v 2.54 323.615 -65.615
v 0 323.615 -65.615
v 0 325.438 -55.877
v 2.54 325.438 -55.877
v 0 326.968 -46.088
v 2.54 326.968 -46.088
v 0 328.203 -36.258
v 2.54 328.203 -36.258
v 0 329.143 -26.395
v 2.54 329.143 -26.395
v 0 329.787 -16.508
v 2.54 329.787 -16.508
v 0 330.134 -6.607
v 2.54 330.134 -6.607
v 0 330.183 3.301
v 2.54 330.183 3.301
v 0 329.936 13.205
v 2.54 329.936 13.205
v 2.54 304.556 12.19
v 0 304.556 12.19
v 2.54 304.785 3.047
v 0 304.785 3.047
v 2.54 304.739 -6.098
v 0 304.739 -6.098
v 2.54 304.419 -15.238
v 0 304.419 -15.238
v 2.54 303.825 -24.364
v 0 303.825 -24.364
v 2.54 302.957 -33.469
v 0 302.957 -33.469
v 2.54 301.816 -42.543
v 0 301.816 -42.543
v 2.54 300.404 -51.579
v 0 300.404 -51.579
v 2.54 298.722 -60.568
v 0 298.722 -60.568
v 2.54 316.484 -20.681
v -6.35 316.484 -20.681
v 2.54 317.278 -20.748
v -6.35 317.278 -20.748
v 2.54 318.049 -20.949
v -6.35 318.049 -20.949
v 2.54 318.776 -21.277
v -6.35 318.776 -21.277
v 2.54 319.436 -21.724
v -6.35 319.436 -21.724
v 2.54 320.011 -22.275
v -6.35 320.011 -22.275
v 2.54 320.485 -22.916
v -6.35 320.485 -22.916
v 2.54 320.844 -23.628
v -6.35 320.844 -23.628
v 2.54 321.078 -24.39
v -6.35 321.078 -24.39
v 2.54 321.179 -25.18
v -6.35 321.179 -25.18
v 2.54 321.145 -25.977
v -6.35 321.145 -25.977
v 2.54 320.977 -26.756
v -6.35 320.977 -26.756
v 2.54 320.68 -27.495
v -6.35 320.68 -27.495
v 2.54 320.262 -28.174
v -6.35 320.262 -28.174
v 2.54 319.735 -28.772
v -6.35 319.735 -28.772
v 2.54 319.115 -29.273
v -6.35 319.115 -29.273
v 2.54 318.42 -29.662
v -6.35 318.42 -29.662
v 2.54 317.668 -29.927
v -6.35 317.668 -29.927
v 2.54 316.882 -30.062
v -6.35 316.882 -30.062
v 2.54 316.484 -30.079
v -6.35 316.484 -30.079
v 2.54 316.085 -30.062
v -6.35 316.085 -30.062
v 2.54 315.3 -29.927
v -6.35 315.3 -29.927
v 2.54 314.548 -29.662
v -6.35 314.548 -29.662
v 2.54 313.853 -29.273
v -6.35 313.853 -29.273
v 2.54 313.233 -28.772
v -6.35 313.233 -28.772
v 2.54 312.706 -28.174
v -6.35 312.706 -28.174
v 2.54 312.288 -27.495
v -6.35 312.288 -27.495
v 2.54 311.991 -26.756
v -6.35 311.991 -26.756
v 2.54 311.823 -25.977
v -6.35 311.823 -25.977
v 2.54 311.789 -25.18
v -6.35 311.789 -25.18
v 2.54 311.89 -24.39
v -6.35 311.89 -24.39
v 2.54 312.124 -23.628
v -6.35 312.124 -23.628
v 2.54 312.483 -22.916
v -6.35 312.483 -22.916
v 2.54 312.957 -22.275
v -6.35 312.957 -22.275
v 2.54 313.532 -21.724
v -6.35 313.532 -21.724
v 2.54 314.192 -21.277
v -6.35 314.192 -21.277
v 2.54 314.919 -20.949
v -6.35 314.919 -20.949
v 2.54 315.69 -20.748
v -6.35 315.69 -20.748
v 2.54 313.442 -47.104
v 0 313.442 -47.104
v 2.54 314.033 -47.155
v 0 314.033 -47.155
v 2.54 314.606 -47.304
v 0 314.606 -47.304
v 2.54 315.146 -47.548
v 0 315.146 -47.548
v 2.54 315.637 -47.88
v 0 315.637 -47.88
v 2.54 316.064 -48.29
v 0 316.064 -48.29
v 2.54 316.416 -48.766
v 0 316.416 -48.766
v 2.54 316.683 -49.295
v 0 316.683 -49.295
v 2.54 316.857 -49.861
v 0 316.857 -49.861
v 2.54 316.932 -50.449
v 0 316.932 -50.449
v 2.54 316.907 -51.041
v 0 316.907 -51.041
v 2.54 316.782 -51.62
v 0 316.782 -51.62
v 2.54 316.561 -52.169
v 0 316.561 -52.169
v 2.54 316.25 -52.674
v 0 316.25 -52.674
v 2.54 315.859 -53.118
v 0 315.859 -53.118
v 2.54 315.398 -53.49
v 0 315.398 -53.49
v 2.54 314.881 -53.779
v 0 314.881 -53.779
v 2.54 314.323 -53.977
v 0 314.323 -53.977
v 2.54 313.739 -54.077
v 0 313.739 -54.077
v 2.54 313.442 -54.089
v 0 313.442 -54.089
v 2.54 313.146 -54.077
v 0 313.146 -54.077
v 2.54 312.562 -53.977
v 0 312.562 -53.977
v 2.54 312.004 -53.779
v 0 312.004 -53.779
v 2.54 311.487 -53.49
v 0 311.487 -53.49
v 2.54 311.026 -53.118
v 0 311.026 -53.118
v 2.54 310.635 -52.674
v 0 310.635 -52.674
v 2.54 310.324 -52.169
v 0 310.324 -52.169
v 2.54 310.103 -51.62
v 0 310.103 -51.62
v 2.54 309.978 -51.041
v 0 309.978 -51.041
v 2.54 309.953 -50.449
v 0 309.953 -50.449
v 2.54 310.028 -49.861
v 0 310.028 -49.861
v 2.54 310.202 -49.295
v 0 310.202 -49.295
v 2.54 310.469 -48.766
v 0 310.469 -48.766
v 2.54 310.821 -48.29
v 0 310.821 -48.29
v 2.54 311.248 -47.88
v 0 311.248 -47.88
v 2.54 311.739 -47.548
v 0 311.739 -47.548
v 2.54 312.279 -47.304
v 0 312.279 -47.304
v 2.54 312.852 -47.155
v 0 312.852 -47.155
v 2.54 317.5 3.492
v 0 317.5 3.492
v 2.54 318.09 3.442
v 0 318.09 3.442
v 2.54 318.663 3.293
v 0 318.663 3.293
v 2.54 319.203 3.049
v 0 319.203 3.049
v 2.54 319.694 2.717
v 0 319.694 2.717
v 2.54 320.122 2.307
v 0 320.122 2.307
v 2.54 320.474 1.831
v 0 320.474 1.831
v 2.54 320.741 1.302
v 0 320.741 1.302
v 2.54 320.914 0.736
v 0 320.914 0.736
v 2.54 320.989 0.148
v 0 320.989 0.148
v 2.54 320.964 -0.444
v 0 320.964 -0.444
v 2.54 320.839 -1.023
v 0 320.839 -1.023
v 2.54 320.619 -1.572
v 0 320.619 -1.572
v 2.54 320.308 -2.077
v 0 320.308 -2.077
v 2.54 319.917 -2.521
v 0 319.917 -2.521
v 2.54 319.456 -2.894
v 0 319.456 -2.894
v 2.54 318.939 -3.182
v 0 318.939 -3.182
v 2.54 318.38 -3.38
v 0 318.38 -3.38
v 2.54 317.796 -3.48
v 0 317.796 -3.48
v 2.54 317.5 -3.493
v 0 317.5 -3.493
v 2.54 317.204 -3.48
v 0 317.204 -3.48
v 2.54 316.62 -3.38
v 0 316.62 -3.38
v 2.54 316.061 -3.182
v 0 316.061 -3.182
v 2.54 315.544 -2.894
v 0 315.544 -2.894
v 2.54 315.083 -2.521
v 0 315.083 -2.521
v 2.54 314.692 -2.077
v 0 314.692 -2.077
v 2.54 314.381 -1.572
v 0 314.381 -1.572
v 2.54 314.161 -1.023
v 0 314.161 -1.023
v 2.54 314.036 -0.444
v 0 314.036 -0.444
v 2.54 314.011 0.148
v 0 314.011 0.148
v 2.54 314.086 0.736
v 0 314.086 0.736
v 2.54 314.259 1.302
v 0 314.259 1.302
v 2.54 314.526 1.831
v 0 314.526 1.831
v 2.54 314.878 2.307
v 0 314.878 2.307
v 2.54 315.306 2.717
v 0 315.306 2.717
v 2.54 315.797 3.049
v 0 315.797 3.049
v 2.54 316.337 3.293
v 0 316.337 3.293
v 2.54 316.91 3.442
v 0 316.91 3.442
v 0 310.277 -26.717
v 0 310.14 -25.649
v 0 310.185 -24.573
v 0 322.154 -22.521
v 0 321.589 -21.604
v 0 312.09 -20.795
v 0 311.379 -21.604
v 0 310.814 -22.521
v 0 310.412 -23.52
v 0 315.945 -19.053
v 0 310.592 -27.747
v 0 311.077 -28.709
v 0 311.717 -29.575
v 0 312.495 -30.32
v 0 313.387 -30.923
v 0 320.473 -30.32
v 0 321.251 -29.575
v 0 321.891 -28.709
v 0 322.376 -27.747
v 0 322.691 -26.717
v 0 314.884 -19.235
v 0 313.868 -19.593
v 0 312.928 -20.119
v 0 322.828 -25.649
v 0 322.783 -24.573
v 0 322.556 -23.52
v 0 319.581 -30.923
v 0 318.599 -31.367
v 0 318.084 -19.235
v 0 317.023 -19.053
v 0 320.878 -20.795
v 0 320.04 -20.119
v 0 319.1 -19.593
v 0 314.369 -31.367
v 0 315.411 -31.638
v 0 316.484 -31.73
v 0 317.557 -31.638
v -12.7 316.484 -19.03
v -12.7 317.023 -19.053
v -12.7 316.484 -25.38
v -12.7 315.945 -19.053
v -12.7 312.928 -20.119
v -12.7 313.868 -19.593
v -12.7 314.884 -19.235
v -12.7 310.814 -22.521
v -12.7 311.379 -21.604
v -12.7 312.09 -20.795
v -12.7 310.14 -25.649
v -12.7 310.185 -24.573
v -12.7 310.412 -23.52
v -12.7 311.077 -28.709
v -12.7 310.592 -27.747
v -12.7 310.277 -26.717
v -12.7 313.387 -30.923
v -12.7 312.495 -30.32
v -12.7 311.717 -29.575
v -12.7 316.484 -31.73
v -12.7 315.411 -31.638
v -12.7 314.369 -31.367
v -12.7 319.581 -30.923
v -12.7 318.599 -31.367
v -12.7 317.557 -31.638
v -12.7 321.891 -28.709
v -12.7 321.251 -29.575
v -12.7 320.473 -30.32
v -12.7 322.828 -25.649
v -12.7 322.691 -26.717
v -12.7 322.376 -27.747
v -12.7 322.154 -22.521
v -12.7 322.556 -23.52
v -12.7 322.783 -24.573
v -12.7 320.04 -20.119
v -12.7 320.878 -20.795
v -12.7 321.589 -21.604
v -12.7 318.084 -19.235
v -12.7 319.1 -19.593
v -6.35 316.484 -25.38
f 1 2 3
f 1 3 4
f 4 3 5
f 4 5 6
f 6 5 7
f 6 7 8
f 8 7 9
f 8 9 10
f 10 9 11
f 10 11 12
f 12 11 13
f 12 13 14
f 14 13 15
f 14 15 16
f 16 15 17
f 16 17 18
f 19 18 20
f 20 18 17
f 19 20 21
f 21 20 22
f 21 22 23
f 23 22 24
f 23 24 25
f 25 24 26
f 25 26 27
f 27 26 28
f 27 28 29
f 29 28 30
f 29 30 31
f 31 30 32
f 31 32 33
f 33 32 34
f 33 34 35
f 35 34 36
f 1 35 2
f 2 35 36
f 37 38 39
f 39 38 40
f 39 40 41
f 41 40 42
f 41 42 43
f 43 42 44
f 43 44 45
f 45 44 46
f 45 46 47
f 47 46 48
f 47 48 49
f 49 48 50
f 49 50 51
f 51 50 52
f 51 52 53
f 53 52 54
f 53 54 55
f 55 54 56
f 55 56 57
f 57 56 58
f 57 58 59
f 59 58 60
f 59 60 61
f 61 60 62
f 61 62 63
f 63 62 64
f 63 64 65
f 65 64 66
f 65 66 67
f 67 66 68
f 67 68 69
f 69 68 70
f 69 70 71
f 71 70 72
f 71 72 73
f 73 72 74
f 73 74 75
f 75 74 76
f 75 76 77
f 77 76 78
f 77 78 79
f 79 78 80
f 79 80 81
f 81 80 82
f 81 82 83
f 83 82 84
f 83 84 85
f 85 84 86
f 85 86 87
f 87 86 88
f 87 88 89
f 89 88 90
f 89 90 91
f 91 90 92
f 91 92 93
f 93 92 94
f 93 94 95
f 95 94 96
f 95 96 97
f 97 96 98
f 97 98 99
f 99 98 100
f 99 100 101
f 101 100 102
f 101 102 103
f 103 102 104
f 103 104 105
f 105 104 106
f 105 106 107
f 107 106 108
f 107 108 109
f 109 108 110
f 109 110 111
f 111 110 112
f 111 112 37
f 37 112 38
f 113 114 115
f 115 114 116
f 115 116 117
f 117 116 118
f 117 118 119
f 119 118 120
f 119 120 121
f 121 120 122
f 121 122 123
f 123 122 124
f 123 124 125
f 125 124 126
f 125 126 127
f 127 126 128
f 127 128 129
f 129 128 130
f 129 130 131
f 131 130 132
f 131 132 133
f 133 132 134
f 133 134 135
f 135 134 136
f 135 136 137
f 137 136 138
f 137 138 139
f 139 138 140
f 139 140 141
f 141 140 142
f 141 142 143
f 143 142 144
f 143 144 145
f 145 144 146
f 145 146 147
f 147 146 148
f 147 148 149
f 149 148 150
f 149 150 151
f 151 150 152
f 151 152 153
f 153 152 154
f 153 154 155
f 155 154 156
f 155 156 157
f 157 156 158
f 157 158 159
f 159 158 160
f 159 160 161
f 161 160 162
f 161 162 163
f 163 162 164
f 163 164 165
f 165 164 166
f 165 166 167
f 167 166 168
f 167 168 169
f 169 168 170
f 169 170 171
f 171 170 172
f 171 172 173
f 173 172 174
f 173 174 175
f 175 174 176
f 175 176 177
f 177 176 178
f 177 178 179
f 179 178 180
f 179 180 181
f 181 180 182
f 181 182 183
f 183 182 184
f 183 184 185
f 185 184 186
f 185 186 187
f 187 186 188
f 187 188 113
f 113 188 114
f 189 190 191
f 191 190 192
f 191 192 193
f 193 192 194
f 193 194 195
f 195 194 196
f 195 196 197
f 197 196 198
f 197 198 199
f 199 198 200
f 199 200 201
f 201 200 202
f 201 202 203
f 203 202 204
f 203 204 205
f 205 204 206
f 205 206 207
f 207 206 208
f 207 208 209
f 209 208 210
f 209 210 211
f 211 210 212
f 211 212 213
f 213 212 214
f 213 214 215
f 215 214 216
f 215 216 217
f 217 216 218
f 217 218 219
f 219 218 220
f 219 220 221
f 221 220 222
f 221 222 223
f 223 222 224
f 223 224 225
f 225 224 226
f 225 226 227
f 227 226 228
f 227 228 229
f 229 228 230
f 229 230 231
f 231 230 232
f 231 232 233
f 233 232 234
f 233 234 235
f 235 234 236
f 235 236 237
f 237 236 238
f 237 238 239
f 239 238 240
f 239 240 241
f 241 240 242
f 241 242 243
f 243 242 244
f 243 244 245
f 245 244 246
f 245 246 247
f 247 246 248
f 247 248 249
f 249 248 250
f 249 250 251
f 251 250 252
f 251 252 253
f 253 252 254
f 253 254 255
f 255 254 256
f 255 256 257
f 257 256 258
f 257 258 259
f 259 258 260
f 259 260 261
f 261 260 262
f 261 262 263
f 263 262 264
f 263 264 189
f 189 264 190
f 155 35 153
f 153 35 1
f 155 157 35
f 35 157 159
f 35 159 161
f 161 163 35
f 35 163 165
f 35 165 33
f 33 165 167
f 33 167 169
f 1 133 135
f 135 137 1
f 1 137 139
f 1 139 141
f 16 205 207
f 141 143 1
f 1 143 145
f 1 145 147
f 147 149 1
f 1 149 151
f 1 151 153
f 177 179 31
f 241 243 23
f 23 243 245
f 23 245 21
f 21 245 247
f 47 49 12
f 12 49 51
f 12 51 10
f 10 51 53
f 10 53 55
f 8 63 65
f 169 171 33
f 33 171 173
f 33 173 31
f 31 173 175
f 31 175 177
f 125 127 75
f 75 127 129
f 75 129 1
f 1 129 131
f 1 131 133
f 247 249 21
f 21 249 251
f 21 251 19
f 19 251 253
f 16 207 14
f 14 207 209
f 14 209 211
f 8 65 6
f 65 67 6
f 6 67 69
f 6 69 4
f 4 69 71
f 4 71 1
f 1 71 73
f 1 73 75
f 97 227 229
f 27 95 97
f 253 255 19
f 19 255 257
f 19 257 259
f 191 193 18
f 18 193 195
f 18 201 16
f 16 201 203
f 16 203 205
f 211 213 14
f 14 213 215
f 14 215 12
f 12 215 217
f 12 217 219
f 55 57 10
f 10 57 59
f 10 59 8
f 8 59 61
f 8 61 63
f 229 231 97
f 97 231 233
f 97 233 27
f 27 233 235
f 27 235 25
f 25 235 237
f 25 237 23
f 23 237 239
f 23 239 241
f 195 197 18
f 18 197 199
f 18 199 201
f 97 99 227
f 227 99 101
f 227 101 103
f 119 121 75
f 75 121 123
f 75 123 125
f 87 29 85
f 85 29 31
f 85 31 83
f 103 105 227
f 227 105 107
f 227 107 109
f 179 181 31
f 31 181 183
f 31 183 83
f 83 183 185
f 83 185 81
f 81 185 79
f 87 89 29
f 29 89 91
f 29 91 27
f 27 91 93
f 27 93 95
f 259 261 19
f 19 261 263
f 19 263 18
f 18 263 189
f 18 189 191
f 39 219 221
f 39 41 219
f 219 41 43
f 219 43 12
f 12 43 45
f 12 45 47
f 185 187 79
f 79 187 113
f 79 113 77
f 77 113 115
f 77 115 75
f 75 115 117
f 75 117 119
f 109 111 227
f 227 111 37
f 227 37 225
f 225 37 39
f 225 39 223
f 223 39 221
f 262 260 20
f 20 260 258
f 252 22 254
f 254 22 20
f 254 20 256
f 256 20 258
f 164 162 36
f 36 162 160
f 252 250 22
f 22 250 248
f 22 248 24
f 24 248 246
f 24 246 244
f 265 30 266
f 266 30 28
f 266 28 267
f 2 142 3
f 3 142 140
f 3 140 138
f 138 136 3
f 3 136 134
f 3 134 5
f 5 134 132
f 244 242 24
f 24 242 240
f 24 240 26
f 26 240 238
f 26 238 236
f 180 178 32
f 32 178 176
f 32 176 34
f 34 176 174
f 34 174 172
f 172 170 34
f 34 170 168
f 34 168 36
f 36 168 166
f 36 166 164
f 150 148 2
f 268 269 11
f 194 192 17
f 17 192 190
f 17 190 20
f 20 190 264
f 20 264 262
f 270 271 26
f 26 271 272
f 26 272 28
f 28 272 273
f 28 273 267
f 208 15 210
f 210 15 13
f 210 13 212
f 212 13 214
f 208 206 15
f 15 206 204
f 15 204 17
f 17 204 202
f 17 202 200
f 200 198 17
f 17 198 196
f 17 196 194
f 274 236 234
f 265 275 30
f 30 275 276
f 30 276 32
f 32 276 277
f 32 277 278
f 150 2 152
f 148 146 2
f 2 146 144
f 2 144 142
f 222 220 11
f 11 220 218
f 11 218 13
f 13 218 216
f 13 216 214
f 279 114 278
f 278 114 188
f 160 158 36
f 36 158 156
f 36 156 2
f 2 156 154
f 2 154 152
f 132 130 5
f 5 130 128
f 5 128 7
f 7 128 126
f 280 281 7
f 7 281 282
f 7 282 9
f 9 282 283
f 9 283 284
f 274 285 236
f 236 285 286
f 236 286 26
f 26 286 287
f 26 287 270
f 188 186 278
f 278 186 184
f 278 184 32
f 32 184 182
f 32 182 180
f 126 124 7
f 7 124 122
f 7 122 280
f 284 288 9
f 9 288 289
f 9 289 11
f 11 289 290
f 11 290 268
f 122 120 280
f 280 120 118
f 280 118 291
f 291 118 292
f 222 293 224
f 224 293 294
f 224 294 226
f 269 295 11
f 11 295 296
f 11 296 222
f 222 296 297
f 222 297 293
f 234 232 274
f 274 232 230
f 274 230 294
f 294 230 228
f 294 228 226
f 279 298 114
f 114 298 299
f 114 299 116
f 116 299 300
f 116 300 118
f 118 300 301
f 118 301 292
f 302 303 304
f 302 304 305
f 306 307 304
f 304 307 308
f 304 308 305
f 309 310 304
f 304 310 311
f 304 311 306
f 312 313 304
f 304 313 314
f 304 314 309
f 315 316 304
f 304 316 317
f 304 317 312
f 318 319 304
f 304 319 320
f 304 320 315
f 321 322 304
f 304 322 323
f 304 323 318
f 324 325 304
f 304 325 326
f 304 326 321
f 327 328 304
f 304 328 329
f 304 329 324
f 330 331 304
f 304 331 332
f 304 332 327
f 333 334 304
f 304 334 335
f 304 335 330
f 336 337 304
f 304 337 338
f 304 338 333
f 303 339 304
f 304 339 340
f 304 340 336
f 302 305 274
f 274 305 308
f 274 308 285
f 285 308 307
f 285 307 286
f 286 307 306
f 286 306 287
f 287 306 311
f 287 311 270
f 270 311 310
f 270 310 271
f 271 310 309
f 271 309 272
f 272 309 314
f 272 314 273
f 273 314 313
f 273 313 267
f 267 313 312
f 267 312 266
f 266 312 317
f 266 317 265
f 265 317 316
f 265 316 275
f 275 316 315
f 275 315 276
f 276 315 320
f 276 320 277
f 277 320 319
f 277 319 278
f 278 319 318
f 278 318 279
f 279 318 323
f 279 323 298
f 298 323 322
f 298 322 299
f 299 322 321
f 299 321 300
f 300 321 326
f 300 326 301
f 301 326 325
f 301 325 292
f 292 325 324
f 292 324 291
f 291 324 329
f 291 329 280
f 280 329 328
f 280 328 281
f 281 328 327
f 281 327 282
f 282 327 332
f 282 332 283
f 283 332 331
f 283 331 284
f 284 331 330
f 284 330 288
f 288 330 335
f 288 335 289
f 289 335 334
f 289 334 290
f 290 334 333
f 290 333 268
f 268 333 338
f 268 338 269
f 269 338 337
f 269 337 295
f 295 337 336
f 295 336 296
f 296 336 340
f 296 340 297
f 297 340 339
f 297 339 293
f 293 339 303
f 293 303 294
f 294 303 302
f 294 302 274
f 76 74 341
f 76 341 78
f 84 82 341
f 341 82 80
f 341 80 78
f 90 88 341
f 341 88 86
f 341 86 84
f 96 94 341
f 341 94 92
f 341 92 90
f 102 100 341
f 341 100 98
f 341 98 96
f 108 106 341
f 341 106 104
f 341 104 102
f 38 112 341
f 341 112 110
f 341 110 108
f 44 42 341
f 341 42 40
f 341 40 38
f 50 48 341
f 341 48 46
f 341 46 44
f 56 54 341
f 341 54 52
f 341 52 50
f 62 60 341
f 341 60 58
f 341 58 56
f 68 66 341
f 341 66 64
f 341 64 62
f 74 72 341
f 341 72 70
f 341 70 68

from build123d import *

# Parameters (mm, degrees)
SKETCH1_R           = 3.4925
SKETCH1_R_2         = 4.699
BOSS_EXTRUDE1_DEPTH = 2.54
SKETCH2_R           = 6.35
BOSS_EXTRUDE2_DEPTH = 12.7
SKETCH4_R           = 4.699
CUT_EXTRUDE1_DEPTH  = 6.35


with BuildPart() as part:
    # Sketch1 → Boss-Extrude1 (new body)
    with BuildSketch(Plane(origin=(0, 0, 0), x_dir=(0, 0, -1), z_dir=(1, 0, 0))):
        with BuildLine():
            Line((-12.189561356, 304.55616), (-13.205358136, 329.93584))
            ThreePointArc((-13.205358136, 329.93584), (26.39485874, 329.14336), (65.615293749, 323.615007727))
            Line((65.615293749, 323.615007727), (60.567963461, 298.721545594))
            ThreePointArc((60.567963461, 298.721545594), (24.364484991, 303.82464), (-12.189561356, 304.55616))
        make_face()
        with Locations((0, 317.5)):
            Circle(SKETCH1_R, mode=Mode.SUBTRACT)
        with Locations((25.379671865, 316.484)):
            Circle(SKETCH1_R_2, mode=Mode.SUBTRACT)
        with Locations((50.596913831, 313.4425024)):
            Circle(SKETCH1_R, mode=Mode.SUBTRACT)
    extrude(amount=BOSS_EXTRUDE1_DEPTH)

    # Sketch2 → Boss-Extrude2 (add)
    with BuildSketch(Plane.ZY):
        with Locations((-25.379671865, 316.484)):
            Circle(SKETCH2_R)
    extrude(amount=BOSS_EXTRUDE2_DEPTH)

    # Sketch4 → Cut-Extrude1 (cut)
    with BuildSketch(Plane(origin=(0, 0, 0), x_dir=(0, 0, -1), z_dir=(1, 0, 0))):
        with Locations((25.379671865, 316.484)):
            Circle(SKETCH4_R)
    extrude(amount=-CUT_EXTRUDE1_DEPTH, mode=Mode.SUBTRACT)


solid = part.part
